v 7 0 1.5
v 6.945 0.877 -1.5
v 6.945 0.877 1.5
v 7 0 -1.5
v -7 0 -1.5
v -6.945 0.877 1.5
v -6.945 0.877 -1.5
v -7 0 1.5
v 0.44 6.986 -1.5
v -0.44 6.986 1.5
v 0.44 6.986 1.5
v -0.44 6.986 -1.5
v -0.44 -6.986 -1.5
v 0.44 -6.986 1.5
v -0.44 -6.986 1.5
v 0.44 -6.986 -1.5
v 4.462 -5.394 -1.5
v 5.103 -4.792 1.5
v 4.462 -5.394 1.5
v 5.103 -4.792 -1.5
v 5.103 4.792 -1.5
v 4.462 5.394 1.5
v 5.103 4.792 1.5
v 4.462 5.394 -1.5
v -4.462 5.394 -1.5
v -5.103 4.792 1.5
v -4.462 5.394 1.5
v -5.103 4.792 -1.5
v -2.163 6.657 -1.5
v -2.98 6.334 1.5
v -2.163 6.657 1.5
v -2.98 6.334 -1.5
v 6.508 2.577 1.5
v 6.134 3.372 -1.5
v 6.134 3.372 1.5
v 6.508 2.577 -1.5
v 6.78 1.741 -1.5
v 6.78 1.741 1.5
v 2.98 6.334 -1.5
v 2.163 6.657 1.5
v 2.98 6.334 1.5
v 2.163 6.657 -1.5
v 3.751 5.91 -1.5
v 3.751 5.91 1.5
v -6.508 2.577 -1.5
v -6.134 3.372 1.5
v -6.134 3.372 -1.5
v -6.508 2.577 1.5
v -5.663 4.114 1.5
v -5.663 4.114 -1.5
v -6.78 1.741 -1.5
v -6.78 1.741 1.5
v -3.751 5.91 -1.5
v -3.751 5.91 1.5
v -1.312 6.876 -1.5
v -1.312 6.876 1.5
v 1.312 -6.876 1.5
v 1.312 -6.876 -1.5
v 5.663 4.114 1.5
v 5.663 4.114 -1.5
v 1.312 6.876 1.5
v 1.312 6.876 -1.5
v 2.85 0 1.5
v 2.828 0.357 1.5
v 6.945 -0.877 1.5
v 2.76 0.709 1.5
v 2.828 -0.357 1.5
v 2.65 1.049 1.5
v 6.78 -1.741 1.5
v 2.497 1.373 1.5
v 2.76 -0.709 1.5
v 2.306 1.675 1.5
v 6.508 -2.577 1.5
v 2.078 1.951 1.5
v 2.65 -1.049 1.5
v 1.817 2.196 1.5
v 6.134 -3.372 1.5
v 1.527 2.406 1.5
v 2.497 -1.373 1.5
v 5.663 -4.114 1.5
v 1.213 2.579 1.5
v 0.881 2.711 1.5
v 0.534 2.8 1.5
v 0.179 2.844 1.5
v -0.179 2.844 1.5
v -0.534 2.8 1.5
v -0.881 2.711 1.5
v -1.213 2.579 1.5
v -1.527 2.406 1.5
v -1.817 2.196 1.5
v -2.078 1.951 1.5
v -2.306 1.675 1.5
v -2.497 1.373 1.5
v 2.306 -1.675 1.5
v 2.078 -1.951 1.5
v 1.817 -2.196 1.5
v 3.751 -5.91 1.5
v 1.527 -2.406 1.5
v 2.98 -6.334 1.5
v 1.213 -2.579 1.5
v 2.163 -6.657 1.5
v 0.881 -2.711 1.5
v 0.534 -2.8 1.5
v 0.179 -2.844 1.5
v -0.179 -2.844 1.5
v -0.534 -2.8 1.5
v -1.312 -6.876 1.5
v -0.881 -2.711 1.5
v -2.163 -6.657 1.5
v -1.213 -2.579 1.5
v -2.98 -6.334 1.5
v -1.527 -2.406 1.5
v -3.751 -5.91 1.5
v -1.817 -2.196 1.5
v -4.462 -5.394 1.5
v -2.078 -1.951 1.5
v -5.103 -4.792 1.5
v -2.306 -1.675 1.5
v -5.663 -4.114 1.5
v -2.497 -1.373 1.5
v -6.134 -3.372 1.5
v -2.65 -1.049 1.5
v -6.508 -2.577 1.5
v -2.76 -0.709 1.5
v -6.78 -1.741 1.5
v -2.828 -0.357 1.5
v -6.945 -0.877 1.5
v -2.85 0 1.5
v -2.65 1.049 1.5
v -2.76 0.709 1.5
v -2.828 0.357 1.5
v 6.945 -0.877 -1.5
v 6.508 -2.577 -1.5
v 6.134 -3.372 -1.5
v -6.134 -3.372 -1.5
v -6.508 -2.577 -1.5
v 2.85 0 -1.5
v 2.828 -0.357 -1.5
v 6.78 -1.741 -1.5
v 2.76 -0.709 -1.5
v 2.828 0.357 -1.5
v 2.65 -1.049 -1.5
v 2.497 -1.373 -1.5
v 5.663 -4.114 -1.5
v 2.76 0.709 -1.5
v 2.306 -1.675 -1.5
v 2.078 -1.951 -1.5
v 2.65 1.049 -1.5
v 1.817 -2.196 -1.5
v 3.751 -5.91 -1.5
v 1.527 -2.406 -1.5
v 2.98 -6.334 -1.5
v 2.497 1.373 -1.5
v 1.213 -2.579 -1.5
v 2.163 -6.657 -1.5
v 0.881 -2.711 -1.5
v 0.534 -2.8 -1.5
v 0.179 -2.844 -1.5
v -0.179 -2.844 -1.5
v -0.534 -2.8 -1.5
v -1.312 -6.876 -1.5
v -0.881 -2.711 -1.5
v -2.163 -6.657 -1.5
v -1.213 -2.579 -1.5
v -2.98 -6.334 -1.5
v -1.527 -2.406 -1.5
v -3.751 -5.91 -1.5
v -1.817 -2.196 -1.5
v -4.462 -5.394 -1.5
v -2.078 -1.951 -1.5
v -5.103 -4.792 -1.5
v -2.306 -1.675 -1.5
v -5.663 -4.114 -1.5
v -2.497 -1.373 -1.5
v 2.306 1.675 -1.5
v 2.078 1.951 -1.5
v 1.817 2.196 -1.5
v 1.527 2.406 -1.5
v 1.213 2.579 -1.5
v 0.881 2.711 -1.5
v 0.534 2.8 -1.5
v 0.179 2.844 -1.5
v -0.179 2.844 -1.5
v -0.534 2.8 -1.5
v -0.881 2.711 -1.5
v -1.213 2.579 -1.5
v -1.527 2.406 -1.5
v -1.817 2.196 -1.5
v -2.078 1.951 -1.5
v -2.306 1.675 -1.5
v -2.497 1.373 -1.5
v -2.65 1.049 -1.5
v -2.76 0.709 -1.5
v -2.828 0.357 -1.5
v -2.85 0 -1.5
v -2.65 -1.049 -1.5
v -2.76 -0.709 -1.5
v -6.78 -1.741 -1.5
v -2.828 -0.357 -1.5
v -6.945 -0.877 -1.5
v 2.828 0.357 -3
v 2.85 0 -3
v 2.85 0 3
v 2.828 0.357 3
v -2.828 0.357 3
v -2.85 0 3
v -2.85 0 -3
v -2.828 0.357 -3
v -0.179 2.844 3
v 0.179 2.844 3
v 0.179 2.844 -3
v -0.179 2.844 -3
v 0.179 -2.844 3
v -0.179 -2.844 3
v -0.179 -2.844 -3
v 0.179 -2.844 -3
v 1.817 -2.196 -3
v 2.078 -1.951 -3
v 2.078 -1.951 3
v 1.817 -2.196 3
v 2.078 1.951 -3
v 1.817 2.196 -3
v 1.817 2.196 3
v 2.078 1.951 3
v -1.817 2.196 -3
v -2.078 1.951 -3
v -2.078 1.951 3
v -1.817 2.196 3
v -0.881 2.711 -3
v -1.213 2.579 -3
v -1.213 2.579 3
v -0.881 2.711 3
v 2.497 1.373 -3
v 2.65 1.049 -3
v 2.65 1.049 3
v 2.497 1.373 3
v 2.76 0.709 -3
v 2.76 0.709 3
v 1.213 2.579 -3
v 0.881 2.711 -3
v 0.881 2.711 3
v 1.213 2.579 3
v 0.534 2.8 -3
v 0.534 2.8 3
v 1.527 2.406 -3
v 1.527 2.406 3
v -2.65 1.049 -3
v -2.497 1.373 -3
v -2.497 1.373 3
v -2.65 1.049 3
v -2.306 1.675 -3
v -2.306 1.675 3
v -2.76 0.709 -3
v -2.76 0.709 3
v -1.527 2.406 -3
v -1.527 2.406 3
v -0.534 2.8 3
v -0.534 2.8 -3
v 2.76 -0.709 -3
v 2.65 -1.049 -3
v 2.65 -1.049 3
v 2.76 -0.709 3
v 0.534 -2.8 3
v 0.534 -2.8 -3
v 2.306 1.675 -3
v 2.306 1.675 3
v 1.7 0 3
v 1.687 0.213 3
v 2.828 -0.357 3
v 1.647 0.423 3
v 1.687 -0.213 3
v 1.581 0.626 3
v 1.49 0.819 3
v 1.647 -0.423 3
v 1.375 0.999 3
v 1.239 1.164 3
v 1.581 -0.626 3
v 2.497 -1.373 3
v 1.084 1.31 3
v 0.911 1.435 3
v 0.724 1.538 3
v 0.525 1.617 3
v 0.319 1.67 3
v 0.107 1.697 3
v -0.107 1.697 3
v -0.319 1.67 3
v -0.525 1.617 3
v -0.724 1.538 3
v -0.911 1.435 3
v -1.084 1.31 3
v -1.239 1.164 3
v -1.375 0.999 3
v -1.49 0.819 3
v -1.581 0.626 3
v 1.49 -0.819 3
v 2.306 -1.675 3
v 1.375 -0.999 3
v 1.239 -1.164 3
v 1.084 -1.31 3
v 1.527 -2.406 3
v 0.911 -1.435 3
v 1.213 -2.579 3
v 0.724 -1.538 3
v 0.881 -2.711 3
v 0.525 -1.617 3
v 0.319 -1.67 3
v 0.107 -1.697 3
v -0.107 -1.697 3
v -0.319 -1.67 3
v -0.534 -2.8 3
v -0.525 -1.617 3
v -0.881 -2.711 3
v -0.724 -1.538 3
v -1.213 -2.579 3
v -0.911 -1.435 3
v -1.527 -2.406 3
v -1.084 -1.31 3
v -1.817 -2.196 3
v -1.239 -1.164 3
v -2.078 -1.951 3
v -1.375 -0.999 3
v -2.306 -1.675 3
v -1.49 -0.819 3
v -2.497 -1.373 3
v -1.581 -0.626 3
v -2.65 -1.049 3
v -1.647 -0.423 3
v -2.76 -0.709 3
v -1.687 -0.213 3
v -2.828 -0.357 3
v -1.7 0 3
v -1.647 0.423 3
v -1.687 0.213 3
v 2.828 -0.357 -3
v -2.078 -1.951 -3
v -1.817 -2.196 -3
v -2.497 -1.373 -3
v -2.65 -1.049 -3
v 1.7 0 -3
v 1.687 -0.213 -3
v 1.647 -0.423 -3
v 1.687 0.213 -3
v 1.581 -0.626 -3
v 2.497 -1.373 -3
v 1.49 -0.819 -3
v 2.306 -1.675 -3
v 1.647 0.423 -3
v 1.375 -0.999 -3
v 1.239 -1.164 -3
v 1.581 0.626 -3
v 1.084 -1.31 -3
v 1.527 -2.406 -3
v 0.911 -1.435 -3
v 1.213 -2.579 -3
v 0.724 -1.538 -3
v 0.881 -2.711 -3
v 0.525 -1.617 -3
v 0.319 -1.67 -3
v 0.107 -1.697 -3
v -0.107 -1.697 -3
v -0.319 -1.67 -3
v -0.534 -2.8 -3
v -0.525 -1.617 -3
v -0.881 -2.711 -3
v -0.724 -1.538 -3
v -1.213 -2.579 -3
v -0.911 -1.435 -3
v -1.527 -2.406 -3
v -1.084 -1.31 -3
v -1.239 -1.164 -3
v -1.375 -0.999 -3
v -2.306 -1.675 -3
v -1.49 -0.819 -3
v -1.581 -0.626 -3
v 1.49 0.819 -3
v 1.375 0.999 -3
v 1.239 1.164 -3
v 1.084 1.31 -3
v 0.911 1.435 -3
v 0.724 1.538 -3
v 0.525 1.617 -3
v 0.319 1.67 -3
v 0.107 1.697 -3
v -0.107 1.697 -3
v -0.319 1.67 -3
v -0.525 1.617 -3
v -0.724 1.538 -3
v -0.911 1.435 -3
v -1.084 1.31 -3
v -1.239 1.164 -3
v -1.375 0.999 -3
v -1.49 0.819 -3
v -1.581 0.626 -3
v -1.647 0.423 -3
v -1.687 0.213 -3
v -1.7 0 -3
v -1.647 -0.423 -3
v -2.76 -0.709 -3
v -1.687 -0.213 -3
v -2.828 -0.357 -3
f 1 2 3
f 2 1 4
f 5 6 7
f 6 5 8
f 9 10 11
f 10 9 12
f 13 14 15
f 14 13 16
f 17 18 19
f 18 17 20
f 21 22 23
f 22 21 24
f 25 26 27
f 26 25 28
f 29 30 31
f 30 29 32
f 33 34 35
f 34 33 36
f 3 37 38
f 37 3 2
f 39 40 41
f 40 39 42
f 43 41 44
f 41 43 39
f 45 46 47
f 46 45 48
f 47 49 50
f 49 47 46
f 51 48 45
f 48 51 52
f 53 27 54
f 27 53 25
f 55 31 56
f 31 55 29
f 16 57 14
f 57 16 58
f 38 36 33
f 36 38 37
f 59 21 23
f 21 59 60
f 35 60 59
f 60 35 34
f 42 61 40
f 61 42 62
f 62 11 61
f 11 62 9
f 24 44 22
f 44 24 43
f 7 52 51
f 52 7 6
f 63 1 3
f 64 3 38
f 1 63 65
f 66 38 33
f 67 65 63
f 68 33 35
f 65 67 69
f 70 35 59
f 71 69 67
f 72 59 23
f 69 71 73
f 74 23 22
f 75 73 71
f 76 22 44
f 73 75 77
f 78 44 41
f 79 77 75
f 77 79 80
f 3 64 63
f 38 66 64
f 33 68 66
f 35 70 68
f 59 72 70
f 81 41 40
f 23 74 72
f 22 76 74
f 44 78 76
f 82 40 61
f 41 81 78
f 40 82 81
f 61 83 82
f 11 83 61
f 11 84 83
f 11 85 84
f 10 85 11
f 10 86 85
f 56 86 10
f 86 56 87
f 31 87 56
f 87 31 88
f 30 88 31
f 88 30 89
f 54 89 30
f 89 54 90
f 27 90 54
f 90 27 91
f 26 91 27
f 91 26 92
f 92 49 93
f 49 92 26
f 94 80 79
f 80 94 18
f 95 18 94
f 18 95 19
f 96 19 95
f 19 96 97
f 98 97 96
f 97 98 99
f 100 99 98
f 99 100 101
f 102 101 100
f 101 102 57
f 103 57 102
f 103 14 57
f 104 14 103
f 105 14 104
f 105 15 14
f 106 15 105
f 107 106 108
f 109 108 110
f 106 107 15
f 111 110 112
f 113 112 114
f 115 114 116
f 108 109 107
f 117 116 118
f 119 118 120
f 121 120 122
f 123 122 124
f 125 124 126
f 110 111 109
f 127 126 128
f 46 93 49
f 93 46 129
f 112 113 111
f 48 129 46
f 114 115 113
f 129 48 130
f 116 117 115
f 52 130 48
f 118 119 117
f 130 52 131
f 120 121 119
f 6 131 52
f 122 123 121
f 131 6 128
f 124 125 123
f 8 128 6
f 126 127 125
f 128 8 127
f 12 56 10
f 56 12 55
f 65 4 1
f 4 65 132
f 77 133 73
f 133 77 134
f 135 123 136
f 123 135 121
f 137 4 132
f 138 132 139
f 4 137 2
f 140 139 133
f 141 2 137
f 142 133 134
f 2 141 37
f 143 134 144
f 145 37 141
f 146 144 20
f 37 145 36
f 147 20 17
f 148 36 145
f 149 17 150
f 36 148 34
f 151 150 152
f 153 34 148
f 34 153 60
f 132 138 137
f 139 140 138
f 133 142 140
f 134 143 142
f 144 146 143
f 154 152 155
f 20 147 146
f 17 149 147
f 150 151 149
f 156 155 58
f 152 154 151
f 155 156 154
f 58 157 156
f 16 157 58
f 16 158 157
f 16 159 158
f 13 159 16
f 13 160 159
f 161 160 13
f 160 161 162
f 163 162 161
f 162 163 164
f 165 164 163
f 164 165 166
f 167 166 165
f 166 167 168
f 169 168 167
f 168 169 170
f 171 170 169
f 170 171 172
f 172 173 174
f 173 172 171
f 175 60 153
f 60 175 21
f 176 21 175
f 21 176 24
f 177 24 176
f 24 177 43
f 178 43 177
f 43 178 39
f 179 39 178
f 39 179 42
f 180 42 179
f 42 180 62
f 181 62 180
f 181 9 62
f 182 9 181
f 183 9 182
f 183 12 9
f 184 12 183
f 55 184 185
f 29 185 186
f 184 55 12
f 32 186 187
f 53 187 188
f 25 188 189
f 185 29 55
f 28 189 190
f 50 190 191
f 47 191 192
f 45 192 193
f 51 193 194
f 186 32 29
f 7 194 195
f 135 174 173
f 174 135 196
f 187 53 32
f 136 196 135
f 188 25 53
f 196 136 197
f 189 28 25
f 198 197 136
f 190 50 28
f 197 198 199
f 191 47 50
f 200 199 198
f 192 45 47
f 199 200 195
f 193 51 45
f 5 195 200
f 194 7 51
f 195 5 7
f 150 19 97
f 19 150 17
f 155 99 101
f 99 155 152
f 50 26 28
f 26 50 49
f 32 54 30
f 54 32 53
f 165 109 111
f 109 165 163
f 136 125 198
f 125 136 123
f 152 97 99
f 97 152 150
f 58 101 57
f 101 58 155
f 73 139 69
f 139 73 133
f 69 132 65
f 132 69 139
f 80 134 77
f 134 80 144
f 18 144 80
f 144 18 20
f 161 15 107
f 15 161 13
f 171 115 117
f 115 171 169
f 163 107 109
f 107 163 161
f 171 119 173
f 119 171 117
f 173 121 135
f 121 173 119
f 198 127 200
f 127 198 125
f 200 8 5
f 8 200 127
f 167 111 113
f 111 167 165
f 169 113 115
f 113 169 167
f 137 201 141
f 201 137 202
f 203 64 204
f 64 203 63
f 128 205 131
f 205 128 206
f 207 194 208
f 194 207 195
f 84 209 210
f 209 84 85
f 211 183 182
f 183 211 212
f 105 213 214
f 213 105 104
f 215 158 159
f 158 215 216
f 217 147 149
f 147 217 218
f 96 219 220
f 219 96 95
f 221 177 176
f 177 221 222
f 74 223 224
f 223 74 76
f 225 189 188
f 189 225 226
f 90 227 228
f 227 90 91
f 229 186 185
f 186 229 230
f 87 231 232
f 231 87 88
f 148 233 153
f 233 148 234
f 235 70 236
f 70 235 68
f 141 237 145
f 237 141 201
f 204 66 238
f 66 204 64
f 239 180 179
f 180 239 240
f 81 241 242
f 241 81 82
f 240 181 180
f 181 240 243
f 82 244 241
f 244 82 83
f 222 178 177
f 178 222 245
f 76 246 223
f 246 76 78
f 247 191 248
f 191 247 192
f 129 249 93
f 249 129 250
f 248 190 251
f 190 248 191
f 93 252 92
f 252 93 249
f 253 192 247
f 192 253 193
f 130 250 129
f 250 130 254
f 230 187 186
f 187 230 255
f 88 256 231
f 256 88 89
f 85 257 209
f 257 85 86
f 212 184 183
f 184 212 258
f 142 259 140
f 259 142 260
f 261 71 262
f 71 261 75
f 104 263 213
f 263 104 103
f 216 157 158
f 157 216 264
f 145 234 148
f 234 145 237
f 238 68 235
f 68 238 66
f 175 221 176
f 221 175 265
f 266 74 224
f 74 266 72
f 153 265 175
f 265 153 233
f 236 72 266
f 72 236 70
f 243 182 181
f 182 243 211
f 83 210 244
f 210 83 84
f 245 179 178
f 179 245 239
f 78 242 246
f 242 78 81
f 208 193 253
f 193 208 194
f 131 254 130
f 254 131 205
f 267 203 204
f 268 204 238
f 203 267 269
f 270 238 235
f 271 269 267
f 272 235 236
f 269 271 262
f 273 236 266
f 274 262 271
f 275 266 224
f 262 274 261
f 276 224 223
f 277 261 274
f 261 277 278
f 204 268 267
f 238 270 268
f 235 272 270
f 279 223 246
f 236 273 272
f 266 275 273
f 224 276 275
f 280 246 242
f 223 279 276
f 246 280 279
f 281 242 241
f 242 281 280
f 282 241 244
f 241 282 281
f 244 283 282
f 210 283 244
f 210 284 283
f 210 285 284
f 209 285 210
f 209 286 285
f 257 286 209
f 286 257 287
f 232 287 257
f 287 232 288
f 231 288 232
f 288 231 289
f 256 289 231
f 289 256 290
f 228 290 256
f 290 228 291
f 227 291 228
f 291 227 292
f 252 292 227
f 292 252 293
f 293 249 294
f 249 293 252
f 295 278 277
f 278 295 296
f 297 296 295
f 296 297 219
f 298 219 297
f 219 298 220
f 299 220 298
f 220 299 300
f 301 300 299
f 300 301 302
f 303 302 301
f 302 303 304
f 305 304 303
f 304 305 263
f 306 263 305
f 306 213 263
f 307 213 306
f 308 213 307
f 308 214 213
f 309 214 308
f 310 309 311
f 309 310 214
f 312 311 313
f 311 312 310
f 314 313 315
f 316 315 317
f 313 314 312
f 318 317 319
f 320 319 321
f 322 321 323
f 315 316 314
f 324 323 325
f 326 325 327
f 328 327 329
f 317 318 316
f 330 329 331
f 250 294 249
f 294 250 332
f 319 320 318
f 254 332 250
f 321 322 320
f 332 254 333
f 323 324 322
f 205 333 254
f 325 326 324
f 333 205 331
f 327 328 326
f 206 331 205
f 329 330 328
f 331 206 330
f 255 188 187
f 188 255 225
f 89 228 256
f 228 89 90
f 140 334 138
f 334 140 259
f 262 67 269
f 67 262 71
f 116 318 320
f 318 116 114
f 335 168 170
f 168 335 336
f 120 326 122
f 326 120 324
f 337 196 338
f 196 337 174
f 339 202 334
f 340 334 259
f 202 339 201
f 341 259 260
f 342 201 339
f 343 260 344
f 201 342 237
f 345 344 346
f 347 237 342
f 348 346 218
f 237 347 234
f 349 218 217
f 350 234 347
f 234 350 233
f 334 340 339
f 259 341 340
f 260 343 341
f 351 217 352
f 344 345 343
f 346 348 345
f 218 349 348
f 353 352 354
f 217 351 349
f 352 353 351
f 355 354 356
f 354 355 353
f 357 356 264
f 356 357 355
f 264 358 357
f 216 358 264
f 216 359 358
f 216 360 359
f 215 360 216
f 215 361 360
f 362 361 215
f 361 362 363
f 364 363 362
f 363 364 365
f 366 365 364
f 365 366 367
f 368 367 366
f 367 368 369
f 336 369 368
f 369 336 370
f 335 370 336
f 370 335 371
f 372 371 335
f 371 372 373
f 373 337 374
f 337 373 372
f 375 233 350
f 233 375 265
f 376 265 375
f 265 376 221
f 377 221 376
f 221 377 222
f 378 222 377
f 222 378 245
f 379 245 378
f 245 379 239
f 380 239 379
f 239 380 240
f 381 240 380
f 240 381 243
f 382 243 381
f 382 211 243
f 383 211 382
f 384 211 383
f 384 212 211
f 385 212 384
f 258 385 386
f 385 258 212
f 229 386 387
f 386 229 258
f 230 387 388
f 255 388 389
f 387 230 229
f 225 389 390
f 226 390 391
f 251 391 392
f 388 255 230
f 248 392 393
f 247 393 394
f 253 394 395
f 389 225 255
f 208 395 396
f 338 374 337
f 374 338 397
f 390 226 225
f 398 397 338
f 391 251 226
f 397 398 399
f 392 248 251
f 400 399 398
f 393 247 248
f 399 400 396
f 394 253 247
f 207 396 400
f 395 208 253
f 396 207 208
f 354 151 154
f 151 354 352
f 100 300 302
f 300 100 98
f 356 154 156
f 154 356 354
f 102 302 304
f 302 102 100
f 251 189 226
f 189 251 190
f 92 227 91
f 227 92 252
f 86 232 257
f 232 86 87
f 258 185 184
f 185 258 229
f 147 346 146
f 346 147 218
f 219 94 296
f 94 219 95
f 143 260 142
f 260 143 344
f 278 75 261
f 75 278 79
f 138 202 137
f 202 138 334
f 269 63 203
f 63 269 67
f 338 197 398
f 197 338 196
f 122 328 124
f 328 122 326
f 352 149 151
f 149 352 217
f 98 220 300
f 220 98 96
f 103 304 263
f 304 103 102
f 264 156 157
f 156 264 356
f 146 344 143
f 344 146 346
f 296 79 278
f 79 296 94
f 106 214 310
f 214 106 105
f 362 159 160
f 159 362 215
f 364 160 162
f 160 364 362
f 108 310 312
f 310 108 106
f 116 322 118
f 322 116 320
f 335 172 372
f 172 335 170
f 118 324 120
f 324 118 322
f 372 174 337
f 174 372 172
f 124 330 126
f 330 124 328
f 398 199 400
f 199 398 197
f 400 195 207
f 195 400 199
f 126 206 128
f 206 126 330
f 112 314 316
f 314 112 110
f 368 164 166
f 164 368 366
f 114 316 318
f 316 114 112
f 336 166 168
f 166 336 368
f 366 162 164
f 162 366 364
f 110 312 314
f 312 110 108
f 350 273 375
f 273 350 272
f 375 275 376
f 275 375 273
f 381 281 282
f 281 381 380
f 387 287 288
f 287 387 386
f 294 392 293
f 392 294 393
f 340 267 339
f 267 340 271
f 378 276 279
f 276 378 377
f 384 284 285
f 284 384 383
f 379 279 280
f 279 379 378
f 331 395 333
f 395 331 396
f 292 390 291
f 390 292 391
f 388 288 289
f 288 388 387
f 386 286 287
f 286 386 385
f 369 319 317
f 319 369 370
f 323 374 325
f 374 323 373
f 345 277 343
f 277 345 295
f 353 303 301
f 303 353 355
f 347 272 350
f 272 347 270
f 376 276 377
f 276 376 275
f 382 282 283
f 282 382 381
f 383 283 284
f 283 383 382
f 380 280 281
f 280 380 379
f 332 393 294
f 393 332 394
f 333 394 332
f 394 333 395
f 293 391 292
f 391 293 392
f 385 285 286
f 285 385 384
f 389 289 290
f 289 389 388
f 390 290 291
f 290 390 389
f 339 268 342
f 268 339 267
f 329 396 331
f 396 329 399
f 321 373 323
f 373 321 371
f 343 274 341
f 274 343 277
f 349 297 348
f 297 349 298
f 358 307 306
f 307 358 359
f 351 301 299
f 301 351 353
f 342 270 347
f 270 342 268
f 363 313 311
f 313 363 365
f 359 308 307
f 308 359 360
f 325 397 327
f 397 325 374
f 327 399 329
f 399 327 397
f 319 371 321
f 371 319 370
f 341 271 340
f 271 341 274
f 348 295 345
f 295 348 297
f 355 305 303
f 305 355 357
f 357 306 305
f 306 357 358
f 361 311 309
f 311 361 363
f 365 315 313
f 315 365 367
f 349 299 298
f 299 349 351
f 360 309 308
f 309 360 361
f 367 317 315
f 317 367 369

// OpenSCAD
$fn = 50;


difference() {
	union() {
		translate(v = [0, 0, -1.5000000000]) {
			rotate(a = [0, 0, 0]) {
				cylinder(h = 3, r = 7.0000000000);
			}
		}
		translate(v = [0, 0, -3.0000000000]) {
			rotate(a = [0, 0, 0]) {
				cylinder(h = 6, r = 2.8500000000);
			}
		}
	}
	union() {
		translate(v = [0, 0, -125.0000000000]) {
			rotate(a = [0, 0, 0]) {
				cylinder(h = 250, r = 1.7000000000);
			}
		}
	}
}
